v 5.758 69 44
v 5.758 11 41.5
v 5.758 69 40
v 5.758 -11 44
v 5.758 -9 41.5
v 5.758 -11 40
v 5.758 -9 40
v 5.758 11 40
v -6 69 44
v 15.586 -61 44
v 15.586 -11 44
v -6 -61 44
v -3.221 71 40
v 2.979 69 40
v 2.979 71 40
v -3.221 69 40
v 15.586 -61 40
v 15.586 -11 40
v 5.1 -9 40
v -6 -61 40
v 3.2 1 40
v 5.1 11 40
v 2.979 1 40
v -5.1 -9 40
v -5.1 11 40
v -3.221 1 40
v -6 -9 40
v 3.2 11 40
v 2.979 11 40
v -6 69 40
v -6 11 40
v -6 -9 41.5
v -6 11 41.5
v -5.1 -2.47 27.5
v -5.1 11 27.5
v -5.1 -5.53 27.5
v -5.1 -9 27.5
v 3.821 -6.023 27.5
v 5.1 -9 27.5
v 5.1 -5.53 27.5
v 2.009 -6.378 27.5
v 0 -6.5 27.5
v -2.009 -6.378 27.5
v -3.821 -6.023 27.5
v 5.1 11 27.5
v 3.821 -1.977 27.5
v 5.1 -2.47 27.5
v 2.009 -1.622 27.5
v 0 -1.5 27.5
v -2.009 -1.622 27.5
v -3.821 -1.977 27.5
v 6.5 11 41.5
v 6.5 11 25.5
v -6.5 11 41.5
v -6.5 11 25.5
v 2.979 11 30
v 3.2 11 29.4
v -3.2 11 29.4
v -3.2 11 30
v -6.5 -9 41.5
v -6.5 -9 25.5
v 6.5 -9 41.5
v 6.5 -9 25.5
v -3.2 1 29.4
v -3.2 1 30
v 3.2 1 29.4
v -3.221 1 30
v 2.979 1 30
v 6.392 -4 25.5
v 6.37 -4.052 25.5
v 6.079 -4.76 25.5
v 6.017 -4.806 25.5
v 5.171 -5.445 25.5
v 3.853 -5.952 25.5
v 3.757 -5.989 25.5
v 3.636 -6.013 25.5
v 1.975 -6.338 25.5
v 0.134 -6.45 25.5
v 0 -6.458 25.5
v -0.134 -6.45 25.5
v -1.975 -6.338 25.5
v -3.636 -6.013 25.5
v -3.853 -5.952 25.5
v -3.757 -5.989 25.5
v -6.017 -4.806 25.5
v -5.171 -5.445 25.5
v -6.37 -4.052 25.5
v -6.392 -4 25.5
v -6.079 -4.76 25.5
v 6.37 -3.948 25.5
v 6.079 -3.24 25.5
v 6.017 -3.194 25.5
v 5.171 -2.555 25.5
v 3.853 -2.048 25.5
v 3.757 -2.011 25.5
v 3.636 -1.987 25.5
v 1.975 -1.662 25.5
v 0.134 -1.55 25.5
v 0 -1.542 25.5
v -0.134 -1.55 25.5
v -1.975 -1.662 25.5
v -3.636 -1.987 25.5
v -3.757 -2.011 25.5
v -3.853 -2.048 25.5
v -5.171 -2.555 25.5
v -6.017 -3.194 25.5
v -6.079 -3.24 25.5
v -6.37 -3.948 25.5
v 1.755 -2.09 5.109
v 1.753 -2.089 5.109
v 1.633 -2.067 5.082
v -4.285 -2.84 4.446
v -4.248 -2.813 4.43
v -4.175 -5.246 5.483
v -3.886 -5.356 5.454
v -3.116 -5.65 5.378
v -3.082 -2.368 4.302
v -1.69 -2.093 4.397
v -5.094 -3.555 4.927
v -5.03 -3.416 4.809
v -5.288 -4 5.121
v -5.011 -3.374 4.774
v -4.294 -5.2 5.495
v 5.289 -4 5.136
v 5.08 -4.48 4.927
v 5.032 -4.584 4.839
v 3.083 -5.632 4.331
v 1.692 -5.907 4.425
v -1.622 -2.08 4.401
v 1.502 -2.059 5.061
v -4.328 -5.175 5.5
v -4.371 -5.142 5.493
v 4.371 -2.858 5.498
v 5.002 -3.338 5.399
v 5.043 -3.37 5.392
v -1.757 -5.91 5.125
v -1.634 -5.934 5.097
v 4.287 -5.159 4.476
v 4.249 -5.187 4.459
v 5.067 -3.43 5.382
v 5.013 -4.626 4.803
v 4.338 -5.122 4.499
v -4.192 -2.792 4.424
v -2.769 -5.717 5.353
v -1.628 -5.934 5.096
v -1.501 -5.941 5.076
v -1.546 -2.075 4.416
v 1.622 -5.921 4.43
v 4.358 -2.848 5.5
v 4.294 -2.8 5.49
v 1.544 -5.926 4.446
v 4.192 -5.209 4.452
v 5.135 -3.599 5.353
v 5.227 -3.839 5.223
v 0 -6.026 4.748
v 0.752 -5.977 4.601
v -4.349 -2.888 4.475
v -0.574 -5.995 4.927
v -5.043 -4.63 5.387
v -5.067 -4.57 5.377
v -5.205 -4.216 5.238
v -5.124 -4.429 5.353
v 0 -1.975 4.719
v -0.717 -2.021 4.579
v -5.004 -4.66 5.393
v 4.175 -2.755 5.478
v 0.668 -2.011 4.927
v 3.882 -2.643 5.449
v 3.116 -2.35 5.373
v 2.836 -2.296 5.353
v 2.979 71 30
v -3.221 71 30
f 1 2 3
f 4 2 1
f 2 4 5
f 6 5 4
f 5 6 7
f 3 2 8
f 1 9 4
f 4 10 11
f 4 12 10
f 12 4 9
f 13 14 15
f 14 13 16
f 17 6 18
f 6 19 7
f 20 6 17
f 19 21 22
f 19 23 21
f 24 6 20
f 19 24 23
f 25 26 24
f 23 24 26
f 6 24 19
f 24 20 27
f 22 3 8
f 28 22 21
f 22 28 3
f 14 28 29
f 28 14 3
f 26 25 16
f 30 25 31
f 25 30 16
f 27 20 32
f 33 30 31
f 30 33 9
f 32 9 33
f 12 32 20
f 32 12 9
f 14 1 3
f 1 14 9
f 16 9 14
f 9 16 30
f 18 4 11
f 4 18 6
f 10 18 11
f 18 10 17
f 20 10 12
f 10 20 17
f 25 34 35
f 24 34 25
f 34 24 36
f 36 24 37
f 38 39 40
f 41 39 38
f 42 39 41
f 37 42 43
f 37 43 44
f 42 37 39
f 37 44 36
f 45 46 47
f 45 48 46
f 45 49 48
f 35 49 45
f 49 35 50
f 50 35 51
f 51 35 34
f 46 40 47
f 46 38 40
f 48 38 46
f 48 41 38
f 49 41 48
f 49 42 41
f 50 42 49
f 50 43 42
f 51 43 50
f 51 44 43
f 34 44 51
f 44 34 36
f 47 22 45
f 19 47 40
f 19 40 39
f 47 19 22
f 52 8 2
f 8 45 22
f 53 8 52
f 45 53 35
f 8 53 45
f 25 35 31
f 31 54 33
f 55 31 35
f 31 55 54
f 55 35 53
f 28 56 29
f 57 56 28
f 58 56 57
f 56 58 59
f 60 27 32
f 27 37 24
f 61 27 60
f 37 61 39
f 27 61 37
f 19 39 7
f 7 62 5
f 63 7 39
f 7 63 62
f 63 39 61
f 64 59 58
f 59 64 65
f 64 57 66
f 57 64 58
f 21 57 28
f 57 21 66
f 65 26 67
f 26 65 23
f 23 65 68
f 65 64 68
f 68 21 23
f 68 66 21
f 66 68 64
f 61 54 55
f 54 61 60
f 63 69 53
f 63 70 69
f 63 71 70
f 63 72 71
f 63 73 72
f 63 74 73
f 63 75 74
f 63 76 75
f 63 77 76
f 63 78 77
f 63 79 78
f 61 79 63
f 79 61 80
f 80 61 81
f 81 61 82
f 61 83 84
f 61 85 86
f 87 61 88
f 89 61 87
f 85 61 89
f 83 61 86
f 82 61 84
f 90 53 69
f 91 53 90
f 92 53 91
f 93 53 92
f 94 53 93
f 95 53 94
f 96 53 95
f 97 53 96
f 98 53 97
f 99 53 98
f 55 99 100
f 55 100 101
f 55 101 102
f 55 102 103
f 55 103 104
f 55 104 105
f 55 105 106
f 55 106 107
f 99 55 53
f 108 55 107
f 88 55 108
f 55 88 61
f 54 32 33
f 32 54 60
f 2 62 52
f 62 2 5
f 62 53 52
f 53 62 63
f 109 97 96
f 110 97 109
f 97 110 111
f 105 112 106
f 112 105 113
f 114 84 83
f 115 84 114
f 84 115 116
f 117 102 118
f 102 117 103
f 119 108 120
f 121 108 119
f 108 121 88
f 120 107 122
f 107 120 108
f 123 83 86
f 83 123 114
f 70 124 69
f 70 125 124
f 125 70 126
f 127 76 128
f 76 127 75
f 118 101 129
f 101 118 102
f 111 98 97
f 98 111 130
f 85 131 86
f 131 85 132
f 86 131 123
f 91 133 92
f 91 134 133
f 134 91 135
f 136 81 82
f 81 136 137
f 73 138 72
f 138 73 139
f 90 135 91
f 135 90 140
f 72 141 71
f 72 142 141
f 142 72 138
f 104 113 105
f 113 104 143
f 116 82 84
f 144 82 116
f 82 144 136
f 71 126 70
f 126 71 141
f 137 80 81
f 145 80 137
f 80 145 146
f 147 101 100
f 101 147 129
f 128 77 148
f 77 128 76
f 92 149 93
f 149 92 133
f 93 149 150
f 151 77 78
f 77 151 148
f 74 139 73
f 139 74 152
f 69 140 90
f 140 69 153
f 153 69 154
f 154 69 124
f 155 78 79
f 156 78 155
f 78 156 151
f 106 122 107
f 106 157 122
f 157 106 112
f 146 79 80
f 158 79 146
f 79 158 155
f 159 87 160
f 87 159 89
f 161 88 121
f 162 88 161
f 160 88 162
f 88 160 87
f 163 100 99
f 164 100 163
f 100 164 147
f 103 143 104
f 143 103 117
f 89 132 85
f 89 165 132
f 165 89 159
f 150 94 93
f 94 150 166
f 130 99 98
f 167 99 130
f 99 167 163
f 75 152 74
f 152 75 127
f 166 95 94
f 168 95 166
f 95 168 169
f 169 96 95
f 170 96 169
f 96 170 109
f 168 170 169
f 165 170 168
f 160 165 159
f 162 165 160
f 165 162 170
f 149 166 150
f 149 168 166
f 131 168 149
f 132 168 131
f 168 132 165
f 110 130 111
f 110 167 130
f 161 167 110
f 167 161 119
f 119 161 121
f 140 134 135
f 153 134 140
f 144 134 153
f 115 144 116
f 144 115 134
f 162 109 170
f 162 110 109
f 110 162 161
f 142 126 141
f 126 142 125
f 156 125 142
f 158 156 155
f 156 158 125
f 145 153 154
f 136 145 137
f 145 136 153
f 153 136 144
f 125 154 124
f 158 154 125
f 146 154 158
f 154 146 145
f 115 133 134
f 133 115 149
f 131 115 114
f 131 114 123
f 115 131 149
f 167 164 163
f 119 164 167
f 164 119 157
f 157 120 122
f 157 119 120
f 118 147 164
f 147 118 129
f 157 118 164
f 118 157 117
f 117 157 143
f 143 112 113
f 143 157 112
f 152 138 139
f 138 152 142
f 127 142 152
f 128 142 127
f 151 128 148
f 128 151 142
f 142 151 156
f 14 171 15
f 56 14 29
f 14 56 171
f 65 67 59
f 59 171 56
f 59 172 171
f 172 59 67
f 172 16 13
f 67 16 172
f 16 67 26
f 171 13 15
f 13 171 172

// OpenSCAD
// file: irkem_hammerTips_v1.scad
tol = 0.2;
extrWall = 1.7+tol;
extrH = 12.9+tol;//12.6+tol;
extrW = 10+tol;

hammerY = 20;
hammerZ = 24;

$fn = 20;

module hammerTips(){
//Strike cylinder:
//v1: made elliptical and added skew-angle indentation to:
//      1. Avoid hitting adjacent strings
//      2. Maximize likelihood of striking proper string
//      3. Ensure that hammer tip force on the string is centering
//Prior cone geometry resulted in adjacent string strikes in y axis for most keys
    difference(){
        translate([0,-5,0]) scale([2.6,1,1]) cylinder(hammerZ,2.5,2);
        translate([-12,-1.8,25]) rotate([0,90,-15]) cylinder(hammerZ,3,3);
    }
difference(){
    translate([-6.5,-10,-14]) cube([13,hammerY,16]);
    union(){uChan();translate([-extrW/2,-hammerY/2,-extrH]) cube([extrW,hammerY/2,extrH]);
}
}
module uChan(){
difference(){
    translate([-extrW/2,-hammerY/2,-extrH]) cube([extrW,hammerY,extrH]);
    translate([-extrW/2+extrWall,-hammerY/2,-extrH-extrWall]) cube([extrW-2*extrWall,hammerY,extrH]);
}
}
}

//hammerTips();
// main file
include <irkem_hammerTips_v1.scad>

xO = -6;
yO = -11;
zO = 40;

kH = 4;
bH = 10;
wL = 50;
bL = 80;
oct = 6.5 * 25.4;
gap = 2;
n_oct = 1;//5;
n_keys = 12 * n_oct;
oset = -1;

sharpFlag = 1;

for (k = [0]){//:1:(n_keys-1)]){
    //
    translate([k*13.75+6.0+xO,12+yO,-12.5+zO]) rotate([0,180,0]) hammerTips();
}

for (k = [0:1:(n_oct-1)]){

//C:
color("ivory") translate([k*oct+0+xO,0+yO,0+zO]) cube([oct*1/12-gap,bL,kH]);
color("ivory") translate([k*oct+0+xO,-wL+yO,0+zO]) cube([oct*1/7-gap,wL,kH]);

////C#:
//if (sharpFlag){    
//color("black") translate([k*oct+oct*1/12+xO,gap+yO,0+zO]) cube([oct*1/12-gap,bL,kH+bH]);
//}//

////D:
//color("ivory") translate([k*oct+oct*2/12+xO,0+yO,0+zO]) cube([oct*1/12-gap,bL,kH]);
//color("ivory") translate([k*oct+oct*1/7+xO,-wL+yO,0+zO]) cube([oct*1/7-gap,wL,kH]);//

////D#:
//if (sharpFlag){
//color("black") translate([k*oct+oct*3/12+xO,gap+yO,0+zO]) cube([oct*1/12-gap,bL,kH+bH]);
//}//

////E:
//color("ivory") translate([k*oct+oct*4/12+xO,0+yO,0+zO]) cube([2+oct*1/12-gap,bL,kH]);
//color("ivory") translate([k*oct+oct*2/7+xO,-wL+yO,0+zO]) cube([oct*1/7-gap,wL,kH]);//

////F:
//color("ivory") difference(){
//    translate([k*oct+oct*3/7+xO,-wL+yO,0+zO]) cube([oct*1/7-gap,wL+bL,kH]);
//    translate([k*oct+oct*6/12-2+xO,0+yO,0+zO]) cube([4+oct*(1/7-1/12)-gap,bL,kH]);
//}
//color("ivory") translate([k*oct+oct*3/7+xO,-wL+yO,0+zO]) cube([oct*1/7-gap,wL,kH]);//

////F#:
//if (sharpFlag){
//color("black") translate([k*oct+oct*6/12+xO,gap+yO,0+zO]) cube([oct*1/12-gap,bL,kH+bH]);
//}//

////G:
//color("ivory") translate([k*oct+oct*7/12+xO,0+yO,0+zO]) cube([oct*1/12-gap,bL,kH]);
//color("ivory") translate([k*oct+oct*4/7+xO,-wL+yO,0+zO]) cube([oct*1/7-gap,wL,kH]);//

////G#:
//if (sharpFlag){
//color("black") translate([k*oct+oct*8/12+xO,gap+yO,0+zO]) cube([oct*1/12-gap,bL,kH+bH]);
//}//

////A:
//color("ivory") translate([k*oct+oct*9/12+xO,0+yO,0+zO]) cube([oct*1/12-gap,bL,kH]);
//color("ivory") translate([k*oct+oct*5/7+xO,-wL+yO,0+zO]) cube([oct*1/7-gap,wL,kH]);//

////A#:
//if (sharpFlag){
//color("black") translate([k*oct+oct*10/12+xO,gap+yO,0+zO]) cube([oct*1/12-gap,bL,kH+bH]);
//}//

////B:
//color("ivory") translate([k*oct+oct*11/12+xO,0+yO,0+zO]) cube([oct*1/12-gap,bL,kH]);
//color("ivory") translate([k*oct+oct*6/7+xO,-wL+yO,0+zO]) cube([oct*1/7-gap,wL,kH]);//

}

for (i = [0]){//,2,4,5,7,9,11]){//[0:1:(n_keys-1)]){
    translate([oset+oct*i/12+(oct*1/12-6.2)/2+xO,2+10+yO,-10+zO]) cube([6.2,bL-10,10]);
}

//if (sharpFlag){
//    for (i = [1,3,6,8,10]){//[0:1:(n_keys-1)]){
//    translate([oset+oct*i/12+(oct*1/12-6.2)/2+xO,2+10+yO,-10+zO]) cube([6.2,bL-10,10]);
//}
//}
